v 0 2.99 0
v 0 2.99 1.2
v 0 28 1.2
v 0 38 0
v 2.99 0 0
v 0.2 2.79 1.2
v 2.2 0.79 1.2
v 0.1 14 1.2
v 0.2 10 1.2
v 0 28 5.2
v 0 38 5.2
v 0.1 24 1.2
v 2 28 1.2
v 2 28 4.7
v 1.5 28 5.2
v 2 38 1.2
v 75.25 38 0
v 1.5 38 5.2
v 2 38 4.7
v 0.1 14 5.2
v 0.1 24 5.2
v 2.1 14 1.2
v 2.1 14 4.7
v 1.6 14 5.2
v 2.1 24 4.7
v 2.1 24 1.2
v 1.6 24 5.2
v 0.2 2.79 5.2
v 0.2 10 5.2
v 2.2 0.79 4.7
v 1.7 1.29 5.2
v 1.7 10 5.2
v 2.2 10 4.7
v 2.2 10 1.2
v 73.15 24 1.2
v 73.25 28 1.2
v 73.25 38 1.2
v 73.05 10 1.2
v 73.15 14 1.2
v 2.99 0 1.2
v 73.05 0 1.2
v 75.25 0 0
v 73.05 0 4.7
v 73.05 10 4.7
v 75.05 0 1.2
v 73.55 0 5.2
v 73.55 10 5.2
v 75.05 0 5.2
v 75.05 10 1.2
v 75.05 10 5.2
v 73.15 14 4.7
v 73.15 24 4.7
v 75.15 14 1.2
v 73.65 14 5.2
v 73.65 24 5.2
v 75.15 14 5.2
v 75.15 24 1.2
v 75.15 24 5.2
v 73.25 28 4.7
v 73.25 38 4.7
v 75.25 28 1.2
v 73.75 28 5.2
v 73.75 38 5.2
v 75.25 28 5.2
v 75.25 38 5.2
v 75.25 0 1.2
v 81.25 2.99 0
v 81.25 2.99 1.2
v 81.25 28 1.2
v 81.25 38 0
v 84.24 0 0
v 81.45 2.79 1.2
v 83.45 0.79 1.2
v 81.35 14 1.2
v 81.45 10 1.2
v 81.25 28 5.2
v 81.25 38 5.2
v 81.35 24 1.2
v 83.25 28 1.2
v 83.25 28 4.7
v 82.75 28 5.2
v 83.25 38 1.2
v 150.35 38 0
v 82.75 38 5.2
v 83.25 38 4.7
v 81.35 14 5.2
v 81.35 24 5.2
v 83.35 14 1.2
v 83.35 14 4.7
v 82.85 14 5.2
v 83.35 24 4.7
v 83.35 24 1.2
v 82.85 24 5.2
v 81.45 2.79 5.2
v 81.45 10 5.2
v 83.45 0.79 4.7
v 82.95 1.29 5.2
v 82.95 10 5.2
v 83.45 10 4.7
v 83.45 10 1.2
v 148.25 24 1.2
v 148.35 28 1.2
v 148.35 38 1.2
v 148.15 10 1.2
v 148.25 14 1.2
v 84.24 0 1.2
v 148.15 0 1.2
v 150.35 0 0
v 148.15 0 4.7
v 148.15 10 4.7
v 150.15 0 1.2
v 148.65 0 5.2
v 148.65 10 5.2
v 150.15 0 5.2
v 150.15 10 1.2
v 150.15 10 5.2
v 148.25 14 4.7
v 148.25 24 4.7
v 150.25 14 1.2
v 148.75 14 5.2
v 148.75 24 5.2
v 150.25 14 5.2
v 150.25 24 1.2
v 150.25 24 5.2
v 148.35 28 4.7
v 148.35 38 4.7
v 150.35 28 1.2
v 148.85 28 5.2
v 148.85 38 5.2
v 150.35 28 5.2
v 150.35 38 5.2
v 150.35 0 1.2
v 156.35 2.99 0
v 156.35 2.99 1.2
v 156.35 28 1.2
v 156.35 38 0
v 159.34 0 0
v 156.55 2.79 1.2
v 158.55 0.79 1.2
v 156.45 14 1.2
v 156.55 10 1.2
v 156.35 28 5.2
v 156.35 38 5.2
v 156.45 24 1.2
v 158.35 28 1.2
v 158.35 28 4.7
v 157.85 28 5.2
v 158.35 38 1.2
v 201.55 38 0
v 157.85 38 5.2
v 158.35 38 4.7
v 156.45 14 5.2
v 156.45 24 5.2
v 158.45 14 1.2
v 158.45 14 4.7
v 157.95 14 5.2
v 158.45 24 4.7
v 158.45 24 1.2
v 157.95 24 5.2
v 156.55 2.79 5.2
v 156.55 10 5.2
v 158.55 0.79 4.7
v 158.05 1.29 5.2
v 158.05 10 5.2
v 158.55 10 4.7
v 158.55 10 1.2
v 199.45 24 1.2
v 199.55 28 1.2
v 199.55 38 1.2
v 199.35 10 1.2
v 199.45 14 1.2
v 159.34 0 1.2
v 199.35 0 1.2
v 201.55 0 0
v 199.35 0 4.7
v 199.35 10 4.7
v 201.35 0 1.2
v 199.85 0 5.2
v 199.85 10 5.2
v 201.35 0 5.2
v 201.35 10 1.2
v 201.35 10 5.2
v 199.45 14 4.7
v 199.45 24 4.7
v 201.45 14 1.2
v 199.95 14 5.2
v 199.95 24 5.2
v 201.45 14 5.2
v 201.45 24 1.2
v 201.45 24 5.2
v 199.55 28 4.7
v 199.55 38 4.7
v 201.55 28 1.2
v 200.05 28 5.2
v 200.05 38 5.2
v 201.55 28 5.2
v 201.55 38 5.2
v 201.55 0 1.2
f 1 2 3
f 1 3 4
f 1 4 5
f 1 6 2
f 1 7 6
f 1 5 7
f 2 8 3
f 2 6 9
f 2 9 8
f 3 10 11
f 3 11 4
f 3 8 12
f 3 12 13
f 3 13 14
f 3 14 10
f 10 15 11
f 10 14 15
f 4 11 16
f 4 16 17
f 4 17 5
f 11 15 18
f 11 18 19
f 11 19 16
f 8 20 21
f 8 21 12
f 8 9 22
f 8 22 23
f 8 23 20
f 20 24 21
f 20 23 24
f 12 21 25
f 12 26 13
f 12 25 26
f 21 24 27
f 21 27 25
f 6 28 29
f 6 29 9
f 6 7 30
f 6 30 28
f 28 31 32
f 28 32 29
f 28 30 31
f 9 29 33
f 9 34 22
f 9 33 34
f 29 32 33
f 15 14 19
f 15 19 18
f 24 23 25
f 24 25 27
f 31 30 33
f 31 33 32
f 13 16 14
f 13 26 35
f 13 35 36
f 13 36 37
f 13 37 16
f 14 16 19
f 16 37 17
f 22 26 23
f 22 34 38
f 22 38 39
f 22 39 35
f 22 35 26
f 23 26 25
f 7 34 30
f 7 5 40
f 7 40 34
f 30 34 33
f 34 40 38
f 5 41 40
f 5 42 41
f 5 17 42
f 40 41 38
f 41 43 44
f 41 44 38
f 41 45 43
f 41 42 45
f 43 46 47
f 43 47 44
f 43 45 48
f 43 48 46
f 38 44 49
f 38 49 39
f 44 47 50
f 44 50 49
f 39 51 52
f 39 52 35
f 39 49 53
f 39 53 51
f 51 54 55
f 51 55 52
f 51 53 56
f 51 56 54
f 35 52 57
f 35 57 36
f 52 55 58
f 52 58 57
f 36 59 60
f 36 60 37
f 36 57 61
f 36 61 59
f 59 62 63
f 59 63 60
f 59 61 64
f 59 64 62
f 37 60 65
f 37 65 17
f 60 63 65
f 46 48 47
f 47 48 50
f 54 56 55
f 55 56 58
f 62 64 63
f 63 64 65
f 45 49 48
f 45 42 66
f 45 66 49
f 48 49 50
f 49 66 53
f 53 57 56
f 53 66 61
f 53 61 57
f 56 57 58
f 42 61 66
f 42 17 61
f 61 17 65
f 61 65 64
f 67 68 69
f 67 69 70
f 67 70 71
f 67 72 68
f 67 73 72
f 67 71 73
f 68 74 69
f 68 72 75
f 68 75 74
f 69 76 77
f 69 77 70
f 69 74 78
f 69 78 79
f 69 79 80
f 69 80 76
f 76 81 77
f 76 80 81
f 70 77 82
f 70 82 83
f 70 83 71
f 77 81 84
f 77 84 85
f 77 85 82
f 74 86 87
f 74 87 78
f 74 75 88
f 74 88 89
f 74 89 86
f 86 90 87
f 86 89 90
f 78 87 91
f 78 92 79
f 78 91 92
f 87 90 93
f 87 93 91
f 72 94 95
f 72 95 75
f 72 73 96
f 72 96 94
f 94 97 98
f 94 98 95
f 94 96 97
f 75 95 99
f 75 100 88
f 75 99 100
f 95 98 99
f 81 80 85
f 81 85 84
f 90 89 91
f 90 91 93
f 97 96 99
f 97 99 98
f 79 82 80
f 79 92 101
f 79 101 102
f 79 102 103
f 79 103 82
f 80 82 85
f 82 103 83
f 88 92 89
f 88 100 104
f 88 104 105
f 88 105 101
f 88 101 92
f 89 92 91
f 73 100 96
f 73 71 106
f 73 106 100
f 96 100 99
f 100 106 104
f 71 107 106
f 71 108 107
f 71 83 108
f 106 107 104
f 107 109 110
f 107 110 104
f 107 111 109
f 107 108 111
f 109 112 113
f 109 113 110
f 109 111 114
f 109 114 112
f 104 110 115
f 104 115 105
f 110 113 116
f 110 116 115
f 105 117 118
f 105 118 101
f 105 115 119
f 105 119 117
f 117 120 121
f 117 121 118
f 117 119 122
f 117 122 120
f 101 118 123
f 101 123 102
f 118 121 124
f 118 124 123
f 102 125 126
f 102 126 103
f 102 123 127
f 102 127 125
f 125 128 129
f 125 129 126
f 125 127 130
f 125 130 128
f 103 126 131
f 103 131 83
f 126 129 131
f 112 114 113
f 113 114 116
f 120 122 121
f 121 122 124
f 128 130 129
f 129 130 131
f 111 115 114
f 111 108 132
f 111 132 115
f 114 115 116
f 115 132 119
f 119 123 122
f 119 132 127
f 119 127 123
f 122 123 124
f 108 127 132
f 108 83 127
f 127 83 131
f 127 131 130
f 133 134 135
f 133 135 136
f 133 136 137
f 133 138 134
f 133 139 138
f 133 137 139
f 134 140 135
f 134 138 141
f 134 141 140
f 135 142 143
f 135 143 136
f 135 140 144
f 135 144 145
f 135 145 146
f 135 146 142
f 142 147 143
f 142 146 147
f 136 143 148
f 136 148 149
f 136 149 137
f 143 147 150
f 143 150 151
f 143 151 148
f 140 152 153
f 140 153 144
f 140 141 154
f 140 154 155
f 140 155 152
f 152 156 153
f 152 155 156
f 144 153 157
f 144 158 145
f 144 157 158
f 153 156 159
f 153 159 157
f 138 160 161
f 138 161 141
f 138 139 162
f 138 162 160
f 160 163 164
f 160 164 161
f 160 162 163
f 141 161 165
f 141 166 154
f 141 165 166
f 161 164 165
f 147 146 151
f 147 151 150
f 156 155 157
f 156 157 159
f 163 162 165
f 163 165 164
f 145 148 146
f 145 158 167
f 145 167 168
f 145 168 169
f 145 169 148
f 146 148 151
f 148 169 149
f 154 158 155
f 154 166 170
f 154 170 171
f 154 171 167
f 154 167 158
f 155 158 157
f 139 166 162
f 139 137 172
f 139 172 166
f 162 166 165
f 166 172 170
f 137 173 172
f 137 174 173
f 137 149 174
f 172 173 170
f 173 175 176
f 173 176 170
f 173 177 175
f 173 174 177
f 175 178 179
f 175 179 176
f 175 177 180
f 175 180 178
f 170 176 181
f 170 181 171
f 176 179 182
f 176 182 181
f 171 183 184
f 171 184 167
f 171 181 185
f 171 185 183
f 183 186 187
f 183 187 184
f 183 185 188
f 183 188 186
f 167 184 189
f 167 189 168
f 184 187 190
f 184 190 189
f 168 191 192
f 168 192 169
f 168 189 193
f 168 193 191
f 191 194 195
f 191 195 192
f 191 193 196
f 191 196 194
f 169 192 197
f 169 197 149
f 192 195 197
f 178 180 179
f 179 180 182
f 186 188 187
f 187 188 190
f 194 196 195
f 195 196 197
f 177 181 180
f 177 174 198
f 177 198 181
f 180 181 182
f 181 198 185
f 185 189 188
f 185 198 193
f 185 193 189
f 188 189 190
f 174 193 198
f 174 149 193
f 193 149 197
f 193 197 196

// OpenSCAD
// file: lib/lego.scad
// Lego Technic interface primitives for printed mounts (2026-10-11).
//
// Every module marked "Negative volume" is meant to be SUBTRACTED with
// difference().
//
// PIN_D 4.80 is the ABS-coupon value (the nominal Lego pin hole). Parts do NOT
// use it directly: they take lego_pin_d() below, which adds the calibrated
// friction-pin fit offset. Re-check the offsets once the pla_fit_coupon print
// (cad/scad/pla_fit_coupon.scad) has been fitted.
// CB_D 6.2 / CB_DEPTH 0.8 are community values for the counterbore of a
// Technic pin hole. UNVERIFIED until measured on a real liftarm.
//
// Include with `use <lib/lego.scad>`. `use` exposes the modules but not the
// constants below, so each module carries its own defaults.

PITCH = 8.0;
PIN_D = 4.80;
CB_D = 6.2;
CB_DEPTH = 0.8;
FN = 64;
EPS = 0.01;

// Fit classes: ONE place for every printed-fit clearance (docs/research/
// 2026-10-12_print-friendly-cad-rules.md, Rule 2). Diametral offset in mm over
// the nominal size. FILAMENT: Bambu PETG Translucent on the P1S - every car part
// is printed in it (Evan, 2026-10-13); slicer X-Y hole compensation 0 (record HK).
// Calibrated per filament - change a value here, never in a part.
//   "friction_pin": Lego friction pin in a printed hole. +0.15 -> 4.95 (HG).
//                   PETG coupon row D (the mounts' exact hole): 4.90-5.05 all
//                   "good" (2026-10-13). +0.075 printed too tight (HH, filament
//                   not recorded).
//   "press_shaft" : motor D-shaft into a printed bore. +0.15 FITS in PLA (GF);
//                   NOT tested in PETG.
//   "slide"       : printed-to-printed sliding fit. 0.3 = Prusa's starting
//                   value, UNTESTED here.
//   "rotate"      : Lego axle spinning in a printed bore - NOT calibrated in
//                   PLA (ABS coupon: 5.00 bore); asking for it stops the render.
//   "pocket"      : a bought part (battery bank, holder, Pi case) dropped into
//                   a printed fence or bracket pocket. 0.50 across = 0.25 per
//                   side (research Rule 11: 0.2-0.3 static). UNTESTED.
function fit_offset(fit) =
  fit == "friction_pin" ? 0.15 :
  fit == "press_shaft"  ? 0.15 :
  fit == "slide"        ? 0.30 :
  fit == "pocket"       ? 0.50 :
  fit == "rotate"       ? assert(false, "fit 'rotate' is not calibrated in PLA - print the coupon first") 0 :
  assert(false, str("unknown fit class: ", fit)) 0;

// nominal + offset, rounded to 0.0001 mm so a value written as a literal before
// (e.g. 4.95) comes out bit-identical and the STL does not change.
function fit_d(nominal, fit) = round((nominal + fit_offset(fit)) * 10000) / 10000;

// The printed Lego pin-hole bore every part uses.
function lego_pin_d() = fit_d(4.80, "friction_pin");

// Circumscribed polygon: flats at d/2, so a printed HOLE is never smaller than d.
module hole_cyl(d, h, fn=FN) { cylinder(r = d / 2 / cos(180 / fn), h = h, $fn = fn); }

// Negative volume: a pin hole along +Z from z=0 to z=h, centred on x=y=0,
// with optional counterbores (diameter cb_d) cb_bot deep at z=0 and cb_top deep at z=h.
module technic_hole(d=PIN_D, h=7.8, cb_d=CB_D, cb_top=0, cb_bot=0) {
  translate([0, 0, -EPS]) hole_cyl(d, h + 2 * EPS);
  if (cb_bot > 0) translate([0, 0, -EPS]) hole_cyl(cb_d, cb_bot + EPS);
  if (cb_top > 0) translate([0, 0, h - cb_top]) hole_cyl(cb_d, cb_top + EPS);
}

// Negative volume: nx * ny technic holes on the 8 mm grid, node (0,0) at the origin.
// skip = list of [i, j] nodes to leave solid.
module pin_grid(nx, ny, pitch=PITCH, d=PIN_D, h=7.8, cb_top=0, cb_bot=0, skip=[]) {
  for (i = [0 : nx - 1], j = [0 : ny - 1])
    if (len([for (s = skip) if (s[0] == i && s[1] == j) 1]) == 0)
      translate([i * pitch, j * pitch, 0]) technic_hole(d, h, CB_D, cb_top, cb_bot);
}

// Negative volume: a self-tapping-screw pilot hole from z=0 up to z=depth.
module pilot_hole(d, depth) { translate([0, 0, -EPS]) hole_cyl(d, depth + EPS); }

// Negative volume: one zip-tie slot, w along X by t along Y, through z = 0..h, centred on x=y=0.
module zip_slot(w, t, h) { translate([-w / 2, -t / 2, -EPS]) cube([w, t, h + 2 * EPS]); }

// Preview-only stand-in for a component (the % modifier keeps it OUT of the STL).
module ghost_box(size, pos=[0, 0, 0]) { % translate(pos) cube(size); }
// main file
// PLA pocket gauge - UNTESTED, not printed (2026-10-13).
// See docs/research/2026-10-12_print-friendly-cad-rules.md Rules 3, 11.
//
// Drop-in width gauges for the three bought parts that sit in printed pockets on
// the electronics tray/deck. Lower each part onto the three gauges of its column;
// the tightest gauge it still drops into without force is the clearance to use.
//
// COLUMNS (nominal part width W): battery bank 70.55, Pi 5 Vilros case 64.4,
// 2S holder 40.5. Per column three segments with clearance per side
// 0.15 / 0.25 / 0.35 (0.25 = fit class "pocket"); the chamfered corner marks the
// 0.15 end (y = 0).
//
// PRINT: flat, floor on the bed, no supports.

use <lib/lego.scad>
EPS = 0.01;
FLOOR_T = 1.2;
WALL_T = 2.0;
WALL_TOP = 5.2;           // floor 1.2 + 4.0 wall, the tray fence height
SEG_L = 10;               // gauge segment length (y)
SEG_Y = [0, 14, 28];      // segment starts
COL_L = 38;               // column floor length (y)
LEAD = 0.5;               // lead-in, as on the tray fences (Rule 5)
P = fit_offset("pocket") / 2;          // 0.25 per side
C = [P - 0.10, P, P + 0.10];           // 0.15 / 0.25 / 0.35 per side
// [label, nominal width W, column x0]
COLS = [["battery bank", 70.55, 0], ["Pi 5 case", 64.4, 81.25], ["2S holder", 40.5, 156.35]];
function col_w(W) = W + 2 * max(C) + 2 * WALL_T;

module lead_in(x0, x1, y0, y1, ztop, c) {
  hull() {
    translate([x0, y0, ztop - c]) cube([x1 - x0, y1 - y0, EPS]);
    translate([x0 - 2 * c, y0 - 2 * c, ztop + c]) cube([x1 - x0 + 4 * c, y1 - y0 + 4 * c, EPS]);
  }
}

difference() {
  union() {
    for (col = COLS) {
      W = col[1]; x0 = col[2]; cx = x0 + col_w(W) / 2;
      translate([x0, 0, 0]) cube([col_w(W), COL_L, FLOOR_T]);
      for (i = [0 : 2]) for (s = [-1, 1]) {
        f = W / 2 + C[i];                         // inner face offset from cx
        translate([s > 0 ? cx + f : cx - f - WALL_T, SEG_Y[i], 0]) cube([WALL_T, SEG_L, WALL_TOP]);
      }
    }
  }
  for (col = COLS) {
    W = col[1]; x0 = col[2]; cx = x0 + col_w(W) / 2;
    for (i = [0 : 2]) lead_in(cx - (W / 2 + C[i]), cx + (W / 2 + C[i]), SEG_Y[i] - 1, SEG_Y[i] + SEG_L + 1, WALL_TOP, LEAD);
    // orientation chamfer at the column's (x0, 0) corner = the 0.15 end
    translate([x0, 0, -EPS]) linear_extrude(WALL_TOP + 2 * EPS) polygon([[-EPS, -EPS], [3, -EPS], [-EPS, 3]]);
  }
}
